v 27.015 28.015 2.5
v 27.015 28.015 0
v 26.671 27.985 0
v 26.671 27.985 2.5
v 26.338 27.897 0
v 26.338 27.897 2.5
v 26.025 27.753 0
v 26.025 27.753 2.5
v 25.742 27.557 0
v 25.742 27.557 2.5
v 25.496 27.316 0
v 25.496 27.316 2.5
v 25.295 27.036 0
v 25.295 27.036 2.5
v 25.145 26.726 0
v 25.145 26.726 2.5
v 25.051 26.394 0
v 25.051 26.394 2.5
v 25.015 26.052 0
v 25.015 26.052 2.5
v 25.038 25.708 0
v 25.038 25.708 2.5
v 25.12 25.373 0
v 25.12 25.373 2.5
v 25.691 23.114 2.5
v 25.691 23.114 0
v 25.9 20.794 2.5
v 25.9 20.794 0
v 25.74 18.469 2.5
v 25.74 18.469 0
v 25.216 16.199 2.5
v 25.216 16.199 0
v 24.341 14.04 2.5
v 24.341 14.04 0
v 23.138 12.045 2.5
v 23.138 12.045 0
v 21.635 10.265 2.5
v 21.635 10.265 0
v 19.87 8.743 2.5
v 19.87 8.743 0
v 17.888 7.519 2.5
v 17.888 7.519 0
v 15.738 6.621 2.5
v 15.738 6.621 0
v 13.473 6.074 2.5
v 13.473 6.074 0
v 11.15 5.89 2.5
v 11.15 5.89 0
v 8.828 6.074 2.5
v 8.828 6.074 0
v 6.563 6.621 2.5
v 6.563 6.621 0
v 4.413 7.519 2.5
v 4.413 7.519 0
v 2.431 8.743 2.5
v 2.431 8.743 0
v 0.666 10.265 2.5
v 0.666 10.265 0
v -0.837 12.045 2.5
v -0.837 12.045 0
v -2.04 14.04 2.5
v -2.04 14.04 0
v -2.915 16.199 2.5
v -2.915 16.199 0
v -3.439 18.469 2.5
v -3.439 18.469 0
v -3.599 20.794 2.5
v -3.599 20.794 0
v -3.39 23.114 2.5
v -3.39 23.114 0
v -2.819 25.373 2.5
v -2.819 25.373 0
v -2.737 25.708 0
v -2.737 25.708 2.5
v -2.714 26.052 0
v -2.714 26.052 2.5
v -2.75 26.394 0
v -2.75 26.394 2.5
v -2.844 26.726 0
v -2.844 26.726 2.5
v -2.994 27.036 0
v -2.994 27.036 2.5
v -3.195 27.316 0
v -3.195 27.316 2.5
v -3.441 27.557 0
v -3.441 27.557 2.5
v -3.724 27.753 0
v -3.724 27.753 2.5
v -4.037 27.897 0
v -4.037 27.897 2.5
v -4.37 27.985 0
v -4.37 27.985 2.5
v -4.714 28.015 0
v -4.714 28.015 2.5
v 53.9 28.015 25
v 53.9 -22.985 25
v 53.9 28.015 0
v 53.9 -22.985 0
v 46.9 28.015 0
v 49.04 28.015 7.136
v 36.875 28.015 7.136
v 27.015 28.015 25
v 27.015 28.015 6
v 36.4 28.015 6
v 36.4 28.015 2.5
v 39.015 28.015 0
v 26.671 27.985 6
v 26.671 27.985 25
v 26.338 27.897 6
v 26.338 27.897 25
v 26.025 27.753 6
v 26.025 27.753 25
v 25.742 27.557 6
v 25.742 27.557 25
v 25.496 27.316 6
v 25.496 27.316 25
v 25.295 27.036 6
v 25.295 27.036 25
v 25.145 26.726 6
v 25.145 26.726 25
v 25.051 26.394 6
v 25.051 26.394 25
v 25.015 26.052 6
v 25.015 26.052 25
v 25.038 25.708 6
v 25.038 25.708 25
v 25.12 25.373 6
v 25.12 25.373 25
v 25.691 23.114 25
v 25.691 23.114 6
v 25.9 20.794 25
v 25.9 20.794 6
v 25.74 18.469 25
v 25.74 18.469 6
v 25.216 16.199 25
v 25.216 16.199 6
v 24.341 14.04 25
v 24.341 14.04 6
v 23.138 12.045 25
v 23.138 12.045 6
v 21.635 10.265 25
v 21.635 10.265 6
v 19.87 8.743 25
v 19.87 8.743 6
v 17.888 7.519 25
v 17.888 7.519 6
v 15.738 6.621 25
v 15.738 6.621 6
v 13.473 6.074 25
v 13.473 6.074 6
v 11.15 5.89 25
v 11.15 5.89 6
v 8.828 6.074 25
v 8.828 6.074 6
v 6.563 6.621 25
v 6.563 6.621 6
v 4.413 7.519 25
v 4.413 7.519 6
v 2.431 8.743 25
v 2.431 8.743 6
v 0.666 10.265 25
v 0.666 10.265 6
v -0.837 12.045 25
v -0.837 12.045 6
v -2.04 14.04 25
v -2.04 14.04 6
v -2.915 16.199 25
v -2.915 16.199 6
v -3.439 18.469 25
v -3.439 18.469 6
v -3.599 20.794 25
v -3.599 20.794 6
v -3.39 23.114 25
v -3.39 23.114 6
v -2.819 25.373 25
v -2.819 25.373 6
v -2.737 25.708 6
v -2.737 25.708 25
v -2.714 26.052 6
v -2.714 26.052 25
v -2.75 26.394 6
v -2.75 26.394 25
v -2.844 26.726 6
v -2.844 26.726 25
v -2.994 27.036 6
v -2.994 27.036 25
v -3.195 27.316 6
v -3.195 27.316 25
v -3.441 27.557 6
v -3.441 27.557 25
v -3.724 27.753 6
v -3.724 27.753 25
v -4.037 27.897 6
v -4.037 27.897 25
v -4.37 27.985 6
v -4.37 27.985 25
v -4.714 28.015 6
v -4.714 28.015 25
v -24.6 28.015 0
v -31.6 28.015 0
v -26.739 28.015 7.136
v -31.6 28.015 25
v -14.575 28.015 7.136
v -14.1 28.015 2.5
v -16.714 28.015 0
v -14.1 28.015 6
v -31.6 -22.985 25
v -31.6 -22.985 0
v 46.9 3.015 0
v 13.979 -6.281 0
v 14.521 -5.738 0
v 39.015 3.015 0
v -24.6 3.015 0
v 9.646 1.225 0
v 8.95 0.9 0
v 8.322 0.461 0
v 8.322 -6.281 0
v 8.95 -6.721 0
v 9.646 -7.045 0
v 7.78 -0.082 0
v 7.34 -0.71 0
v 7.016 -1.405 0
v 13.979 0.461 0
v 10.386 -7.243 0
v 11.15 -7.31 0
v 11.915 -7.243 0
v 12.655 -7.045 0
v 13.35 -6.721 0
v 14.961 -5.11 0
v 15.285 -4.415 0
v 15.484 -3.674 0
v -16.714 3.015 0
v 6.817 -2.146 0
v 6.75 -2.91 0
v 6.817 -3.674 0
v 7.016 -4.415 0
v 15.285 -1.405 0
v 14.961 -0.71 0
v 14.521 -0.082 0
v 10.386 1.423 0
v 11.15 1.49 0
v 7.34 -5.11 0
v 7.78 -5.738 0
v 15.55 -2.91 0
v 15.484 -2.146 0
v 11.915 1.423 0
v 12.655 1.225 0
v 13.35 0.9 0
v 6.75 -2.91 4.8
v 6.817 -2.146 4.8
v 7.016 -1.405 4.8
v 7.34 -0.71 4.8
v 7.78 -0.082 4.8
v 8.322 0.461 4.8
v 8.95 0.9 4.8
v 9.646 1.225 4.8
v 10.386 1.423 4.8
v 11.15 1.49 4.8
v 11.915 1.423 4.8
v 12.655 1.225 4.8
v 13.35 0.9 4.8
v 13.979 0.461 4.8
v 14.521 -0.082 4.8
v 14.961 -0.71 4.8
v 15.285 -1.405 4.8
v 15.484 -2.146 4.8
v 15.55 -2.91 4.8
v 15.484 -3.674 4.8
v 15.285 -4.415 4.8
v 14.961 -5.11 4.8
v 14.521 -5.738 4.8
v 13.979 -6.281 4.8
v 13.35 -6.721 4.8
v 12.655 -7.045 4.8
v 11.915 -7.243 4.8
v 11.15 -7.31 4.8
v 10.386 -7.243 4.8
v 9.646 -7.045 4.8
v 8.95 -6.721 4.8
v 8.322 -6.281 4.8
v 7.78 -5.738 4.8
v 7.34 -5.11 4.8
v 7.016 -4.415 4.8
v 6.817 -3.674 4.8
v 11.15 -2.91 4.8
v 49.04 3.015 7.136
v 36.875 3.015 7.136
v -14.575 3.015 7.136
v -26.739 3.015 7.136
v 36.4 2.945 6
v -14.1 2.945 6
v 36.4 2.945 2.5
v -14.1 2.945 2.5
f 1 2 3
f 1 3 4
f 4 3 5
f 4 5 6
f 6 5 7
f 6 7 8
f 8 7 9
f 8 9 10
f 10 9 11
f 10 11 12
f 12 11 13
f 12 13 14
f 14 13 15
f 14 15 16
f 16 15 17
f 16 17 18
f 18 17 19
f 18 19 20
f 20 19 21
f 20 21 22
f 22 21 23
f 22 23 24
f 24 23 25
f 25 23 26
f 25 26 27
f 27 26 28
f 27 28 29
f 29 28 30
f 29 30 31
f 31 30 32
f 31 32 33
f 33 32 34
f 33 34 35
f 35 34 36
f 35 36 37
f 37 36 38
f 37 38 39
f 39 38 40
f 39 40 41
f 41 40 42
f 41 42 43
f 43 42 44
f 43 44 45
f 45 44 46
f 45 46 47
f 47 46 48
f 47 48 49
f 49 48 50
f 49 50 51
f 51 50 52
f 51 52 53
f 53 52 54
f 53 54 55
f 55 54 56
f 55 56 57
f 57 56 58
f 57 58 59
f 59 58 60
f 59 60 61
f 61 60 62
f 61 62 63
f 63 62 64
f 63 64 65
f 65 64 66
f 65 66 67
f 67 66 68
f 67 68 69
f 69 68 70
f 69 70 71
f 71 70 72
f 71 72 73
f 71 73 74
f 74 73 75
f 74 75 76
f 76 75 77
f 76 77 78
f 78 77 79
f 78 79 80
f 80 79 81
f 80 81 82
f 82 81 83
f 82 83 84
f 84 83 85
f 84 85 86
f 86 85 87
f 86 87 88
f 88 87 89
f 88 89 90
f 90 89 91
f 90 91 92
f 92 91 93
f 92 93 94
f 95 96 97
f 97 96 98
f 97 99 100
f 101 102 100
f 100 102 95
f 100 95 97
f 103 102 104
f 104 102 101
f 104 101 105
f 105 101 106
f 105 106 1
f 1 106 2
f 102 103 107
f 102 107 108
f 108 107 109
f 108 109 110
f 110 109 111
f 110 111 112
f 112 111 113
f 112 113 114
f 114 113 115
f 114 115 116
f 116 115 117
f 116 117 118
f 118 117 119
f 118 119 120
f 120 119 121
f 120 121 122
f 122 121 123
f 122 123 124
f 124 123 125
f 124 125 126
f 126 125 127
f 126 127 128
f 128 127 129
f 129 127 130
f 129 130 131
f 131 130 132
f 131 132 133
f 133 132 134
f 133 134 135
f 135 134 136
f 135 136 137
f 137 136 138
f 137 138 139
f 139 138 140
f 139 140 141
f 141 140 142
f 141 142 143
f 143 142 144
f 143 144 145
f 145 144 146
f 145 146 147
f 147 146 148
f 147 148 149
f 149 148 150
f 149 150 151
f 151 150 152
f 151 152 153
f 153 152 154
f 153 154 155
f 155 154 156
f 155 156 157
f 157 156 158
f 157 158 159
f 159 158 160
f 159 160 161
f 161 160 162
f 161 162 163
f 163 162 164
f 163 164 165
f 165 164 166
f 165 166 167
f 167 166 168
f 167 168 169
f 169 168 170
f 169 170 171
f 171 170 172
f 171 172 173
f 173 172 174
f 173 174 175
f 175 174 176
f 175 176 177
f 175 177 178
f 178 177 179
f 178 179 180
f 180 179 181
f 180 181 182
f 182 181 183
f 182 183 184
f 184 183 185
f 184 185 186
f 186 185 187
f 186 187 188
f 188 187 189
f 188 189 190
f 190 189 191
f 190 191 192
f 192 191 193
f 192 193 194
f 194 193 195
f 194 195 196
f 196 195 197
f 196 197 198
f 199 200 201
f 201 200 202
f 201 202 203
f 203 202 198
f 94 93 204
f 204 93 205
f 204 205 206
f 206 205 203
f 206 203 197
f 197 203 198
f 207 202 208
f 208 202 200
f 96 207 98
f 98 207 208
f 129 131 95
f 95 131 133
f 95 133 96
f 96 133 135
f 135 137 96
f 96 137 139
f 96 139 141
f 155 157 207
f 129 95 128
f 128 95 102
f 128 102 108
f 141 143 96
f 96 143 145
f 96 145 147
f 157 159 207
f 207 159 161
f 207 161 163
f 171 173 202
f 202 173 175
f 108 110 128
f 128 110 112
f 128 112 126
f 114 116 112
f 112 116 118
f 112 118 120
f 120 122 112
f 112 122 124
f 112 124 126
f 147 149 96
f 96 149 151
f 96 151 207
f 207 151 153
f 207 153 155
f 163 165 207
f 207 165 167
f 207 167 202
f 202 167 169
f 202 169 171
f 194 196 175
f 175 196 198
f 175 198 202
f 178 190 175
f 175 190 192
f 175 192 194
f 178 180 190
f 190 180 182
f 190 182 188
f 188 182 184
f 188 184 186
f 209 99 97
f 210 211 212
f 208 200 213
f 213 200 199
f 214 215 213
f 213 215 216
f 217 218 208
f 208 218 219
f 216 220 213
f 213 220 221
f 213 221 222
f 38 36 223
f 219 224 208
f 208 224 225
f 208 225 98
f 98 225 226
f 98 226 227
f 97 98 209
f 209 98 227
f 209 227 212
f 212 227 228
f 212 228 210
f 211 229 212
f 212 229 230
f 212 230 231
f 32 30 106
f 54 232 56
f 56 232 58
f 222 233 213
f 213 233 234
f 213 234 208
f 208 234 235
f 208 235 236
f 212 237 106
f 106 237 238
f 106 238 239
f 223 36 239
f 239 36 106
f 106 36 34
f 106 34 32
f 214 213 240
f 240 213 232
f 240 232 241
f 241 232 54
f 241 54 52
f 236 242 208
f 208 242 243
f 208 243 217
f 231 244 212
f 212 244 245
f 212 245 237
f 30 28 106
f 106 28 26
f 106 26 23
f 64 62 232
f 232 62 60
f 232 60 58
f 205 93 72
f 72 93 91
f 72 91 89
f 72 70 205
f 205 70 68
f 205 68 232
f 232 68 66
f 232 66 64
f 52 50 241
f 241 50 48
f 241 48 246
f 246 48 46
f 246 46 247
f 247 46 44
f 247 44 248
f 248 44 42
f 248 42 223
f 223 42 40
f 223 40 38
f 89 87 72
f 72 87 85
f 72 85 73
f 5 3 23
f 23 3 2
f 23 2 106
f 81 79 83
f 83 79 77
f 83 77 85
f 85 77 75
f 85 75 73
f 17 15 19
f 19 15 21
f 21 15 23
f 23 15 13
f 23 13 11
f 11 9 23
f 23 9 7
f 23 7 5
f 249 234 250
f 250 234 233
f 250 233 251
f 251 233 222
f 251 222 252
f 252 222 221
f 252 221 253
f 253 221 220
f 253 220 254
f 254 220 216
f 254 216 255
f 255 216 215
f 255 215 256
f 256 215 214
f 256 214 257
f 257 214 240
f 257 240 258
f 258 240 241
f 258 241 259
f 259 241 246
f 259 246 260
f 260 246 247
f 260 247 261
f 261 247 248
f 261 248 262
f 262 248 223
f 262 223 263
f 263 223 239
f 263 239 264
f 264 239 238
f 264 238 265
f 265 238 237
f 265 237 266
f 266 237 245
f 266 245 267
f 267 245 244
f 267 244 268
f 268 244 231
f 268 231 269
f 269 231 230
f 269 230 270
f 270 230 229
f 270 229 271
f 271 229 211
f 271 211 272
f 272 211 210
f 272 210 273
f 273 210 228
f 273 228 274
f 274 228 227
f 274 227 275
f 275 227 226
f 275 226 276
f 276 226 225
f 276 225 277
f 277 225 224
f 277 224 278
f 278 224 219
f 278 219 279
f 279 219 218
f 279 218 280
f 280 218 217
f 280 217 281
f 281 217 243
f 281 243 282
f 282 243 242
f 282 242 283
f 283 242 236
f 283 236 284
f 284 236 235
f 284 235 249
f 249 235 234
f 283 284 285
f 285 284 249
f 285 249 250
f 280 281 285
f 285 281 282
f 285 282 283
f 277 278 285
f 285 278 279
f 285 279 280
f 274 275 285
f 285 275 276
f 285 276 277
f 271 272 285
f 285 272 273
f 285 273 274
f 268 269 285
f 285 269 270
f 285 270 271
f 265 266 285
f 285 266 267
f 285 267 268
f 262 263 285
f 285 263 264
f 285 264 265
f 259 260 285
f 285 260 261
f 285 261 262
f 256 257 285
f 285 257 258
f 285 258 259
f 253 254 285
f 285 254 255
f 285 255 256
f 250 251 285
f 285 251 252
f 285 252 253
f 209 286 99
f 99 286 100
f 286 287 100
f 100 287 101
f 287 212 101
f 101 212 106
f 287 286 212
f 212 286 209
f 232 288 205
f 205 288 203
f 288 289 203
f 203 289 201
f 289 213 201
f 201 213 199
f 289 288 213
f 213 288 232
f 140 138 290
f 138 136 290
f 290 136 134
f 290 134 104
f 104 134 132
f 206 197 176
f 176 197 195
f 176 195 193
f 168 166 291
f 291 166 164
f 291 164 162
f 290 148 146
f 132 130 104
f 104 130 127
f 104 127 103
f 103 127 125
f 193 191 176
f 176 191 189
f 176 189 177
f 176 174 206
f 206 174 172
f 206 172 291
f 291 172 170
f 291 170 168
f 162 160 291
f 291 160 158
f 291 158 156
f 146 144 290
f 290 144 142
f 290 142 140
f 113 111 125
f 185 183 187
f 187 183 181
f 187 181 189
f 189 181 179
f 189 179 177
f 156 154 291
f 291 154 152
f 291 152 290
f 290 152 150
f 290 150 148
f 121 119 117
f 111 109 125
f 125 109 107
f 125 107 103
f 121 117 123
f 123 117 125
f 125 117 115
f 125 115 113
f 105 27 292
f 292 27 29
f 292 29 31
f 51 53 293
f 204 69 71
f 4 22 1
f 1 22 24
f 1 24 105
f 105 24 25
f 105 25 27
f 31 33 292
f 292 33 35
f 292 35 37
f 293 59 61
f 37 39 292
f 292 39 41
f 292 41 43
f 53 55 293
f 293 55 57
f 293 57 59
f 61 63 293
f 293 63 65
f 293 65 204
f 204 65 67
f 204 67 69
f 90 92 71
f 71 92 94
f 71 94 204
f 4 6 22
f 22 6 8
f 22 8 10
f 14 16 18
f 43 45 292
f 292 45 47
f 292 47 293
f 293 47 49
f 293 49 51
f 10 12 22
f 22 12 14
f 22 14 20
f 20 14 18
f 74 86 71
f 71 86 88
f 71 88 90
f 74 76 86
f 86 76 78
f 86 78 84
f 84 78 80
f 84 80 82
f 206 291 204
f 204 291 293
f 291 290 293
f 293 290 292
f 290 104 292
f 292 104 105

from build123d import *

# Parameters (mm, degrees)
BOSS_EXTRUDE1_DEPTH = 25
CUT_EXTRUDE3_START  = -25
SKETCH5_R           = 4.4
CUT_EXTRUDE3_DEPTH  = 4.8
CUT_EXTRUDE4_DEPTH  = 25
SKETCH8_W           = 50.5
SKETCH8_H           = 25.070079704
CUT_EXTRUDE5_DEPTH  = 3.5


with BuildPart() as part:
    # Sketch2 → Boss-Extrude1 (new body)
    with BuildSketch(Plane.XY):
        with BuildLine():
            Line((53.900497512, 28.014925373), (27.014667046, 28.014925373))
            ThreePointArc((27.014667046, 28.014925373), (25.389308303, 27.180347595), (25.120437848, 25.373134328))
            ThreePointArc((25.120437848, 25.373134328), (11.150497512, 5.889925373), (-2.819442823, 25.373134328))
            ThreePointArc((-2.819442823, 25.373134328), (-3.088313278, 27.180347595), (-4.713672021, 28.014925373))
            Line((-4.713672021, 28.014925373), (-31.599502488, 28.014925373))
            Line((-31.599502488, 28.014925373), (-31.599502488, -22.985074627))
            Line((-31.599502488, -22.985074627), (53.900497512, -22.985074627))
            Line((53.900497512, -22.985074627), (53.900497512, 28.014925373))
        make_face()
    extrude(amount=BOSS_EXTRUDE1_DEPTH)

    # Sketch5 → Cut-Extrude3 (cut)
    with BuildSketch(Plane.XY.offset(25).offset(CUT_EXTRUDE3_START)):
        with Locations((11.150497512, -2.910074627)):
            Circle(SKETCH5_R)
    extrude(amount=CUT_EXTRUDE3_DEPTH, mode=Mode.SUBTRACT)

    # Sketch6 → Cut-Extrude4 (cut)
    with BuildSketch(Plane(origin=(0, 28.014925373, 0), x_dir=(1, 0, 0), z_dir=(0, 1, 0))):
        Polygon((-24.599502488, 0), (-26.73851519, -7.13632431), (-14.574659319, -7.13632431), (-16.713672021, 0), align=None)
        Polygon((46.900497512, 0), (49.040087925, -7.136151124), (36.875076634, -7.136151124), (39.014667046, 0), align=None)
    extrude(amount=-CUT_EXTRUDE4_DEPTH, mode=Mode.SUBTRACT)

    # Sketch8 → Cut-Extrude5 (cut)
    with BuildSketch(Plane(origin=(0, 0, 2.5), x_dir=(-1, 0, 0), z_dir=(0, 0, -1))):
        with Locations((-11.150497512, 15.479885521)):
            Rectangle(SKETCH8_W, SKETCH8_H)
    extrude(amount=-CUT_EXTRUDE5_DEPTH, mode=Mode.SUBTRACT)


solid = part.part
